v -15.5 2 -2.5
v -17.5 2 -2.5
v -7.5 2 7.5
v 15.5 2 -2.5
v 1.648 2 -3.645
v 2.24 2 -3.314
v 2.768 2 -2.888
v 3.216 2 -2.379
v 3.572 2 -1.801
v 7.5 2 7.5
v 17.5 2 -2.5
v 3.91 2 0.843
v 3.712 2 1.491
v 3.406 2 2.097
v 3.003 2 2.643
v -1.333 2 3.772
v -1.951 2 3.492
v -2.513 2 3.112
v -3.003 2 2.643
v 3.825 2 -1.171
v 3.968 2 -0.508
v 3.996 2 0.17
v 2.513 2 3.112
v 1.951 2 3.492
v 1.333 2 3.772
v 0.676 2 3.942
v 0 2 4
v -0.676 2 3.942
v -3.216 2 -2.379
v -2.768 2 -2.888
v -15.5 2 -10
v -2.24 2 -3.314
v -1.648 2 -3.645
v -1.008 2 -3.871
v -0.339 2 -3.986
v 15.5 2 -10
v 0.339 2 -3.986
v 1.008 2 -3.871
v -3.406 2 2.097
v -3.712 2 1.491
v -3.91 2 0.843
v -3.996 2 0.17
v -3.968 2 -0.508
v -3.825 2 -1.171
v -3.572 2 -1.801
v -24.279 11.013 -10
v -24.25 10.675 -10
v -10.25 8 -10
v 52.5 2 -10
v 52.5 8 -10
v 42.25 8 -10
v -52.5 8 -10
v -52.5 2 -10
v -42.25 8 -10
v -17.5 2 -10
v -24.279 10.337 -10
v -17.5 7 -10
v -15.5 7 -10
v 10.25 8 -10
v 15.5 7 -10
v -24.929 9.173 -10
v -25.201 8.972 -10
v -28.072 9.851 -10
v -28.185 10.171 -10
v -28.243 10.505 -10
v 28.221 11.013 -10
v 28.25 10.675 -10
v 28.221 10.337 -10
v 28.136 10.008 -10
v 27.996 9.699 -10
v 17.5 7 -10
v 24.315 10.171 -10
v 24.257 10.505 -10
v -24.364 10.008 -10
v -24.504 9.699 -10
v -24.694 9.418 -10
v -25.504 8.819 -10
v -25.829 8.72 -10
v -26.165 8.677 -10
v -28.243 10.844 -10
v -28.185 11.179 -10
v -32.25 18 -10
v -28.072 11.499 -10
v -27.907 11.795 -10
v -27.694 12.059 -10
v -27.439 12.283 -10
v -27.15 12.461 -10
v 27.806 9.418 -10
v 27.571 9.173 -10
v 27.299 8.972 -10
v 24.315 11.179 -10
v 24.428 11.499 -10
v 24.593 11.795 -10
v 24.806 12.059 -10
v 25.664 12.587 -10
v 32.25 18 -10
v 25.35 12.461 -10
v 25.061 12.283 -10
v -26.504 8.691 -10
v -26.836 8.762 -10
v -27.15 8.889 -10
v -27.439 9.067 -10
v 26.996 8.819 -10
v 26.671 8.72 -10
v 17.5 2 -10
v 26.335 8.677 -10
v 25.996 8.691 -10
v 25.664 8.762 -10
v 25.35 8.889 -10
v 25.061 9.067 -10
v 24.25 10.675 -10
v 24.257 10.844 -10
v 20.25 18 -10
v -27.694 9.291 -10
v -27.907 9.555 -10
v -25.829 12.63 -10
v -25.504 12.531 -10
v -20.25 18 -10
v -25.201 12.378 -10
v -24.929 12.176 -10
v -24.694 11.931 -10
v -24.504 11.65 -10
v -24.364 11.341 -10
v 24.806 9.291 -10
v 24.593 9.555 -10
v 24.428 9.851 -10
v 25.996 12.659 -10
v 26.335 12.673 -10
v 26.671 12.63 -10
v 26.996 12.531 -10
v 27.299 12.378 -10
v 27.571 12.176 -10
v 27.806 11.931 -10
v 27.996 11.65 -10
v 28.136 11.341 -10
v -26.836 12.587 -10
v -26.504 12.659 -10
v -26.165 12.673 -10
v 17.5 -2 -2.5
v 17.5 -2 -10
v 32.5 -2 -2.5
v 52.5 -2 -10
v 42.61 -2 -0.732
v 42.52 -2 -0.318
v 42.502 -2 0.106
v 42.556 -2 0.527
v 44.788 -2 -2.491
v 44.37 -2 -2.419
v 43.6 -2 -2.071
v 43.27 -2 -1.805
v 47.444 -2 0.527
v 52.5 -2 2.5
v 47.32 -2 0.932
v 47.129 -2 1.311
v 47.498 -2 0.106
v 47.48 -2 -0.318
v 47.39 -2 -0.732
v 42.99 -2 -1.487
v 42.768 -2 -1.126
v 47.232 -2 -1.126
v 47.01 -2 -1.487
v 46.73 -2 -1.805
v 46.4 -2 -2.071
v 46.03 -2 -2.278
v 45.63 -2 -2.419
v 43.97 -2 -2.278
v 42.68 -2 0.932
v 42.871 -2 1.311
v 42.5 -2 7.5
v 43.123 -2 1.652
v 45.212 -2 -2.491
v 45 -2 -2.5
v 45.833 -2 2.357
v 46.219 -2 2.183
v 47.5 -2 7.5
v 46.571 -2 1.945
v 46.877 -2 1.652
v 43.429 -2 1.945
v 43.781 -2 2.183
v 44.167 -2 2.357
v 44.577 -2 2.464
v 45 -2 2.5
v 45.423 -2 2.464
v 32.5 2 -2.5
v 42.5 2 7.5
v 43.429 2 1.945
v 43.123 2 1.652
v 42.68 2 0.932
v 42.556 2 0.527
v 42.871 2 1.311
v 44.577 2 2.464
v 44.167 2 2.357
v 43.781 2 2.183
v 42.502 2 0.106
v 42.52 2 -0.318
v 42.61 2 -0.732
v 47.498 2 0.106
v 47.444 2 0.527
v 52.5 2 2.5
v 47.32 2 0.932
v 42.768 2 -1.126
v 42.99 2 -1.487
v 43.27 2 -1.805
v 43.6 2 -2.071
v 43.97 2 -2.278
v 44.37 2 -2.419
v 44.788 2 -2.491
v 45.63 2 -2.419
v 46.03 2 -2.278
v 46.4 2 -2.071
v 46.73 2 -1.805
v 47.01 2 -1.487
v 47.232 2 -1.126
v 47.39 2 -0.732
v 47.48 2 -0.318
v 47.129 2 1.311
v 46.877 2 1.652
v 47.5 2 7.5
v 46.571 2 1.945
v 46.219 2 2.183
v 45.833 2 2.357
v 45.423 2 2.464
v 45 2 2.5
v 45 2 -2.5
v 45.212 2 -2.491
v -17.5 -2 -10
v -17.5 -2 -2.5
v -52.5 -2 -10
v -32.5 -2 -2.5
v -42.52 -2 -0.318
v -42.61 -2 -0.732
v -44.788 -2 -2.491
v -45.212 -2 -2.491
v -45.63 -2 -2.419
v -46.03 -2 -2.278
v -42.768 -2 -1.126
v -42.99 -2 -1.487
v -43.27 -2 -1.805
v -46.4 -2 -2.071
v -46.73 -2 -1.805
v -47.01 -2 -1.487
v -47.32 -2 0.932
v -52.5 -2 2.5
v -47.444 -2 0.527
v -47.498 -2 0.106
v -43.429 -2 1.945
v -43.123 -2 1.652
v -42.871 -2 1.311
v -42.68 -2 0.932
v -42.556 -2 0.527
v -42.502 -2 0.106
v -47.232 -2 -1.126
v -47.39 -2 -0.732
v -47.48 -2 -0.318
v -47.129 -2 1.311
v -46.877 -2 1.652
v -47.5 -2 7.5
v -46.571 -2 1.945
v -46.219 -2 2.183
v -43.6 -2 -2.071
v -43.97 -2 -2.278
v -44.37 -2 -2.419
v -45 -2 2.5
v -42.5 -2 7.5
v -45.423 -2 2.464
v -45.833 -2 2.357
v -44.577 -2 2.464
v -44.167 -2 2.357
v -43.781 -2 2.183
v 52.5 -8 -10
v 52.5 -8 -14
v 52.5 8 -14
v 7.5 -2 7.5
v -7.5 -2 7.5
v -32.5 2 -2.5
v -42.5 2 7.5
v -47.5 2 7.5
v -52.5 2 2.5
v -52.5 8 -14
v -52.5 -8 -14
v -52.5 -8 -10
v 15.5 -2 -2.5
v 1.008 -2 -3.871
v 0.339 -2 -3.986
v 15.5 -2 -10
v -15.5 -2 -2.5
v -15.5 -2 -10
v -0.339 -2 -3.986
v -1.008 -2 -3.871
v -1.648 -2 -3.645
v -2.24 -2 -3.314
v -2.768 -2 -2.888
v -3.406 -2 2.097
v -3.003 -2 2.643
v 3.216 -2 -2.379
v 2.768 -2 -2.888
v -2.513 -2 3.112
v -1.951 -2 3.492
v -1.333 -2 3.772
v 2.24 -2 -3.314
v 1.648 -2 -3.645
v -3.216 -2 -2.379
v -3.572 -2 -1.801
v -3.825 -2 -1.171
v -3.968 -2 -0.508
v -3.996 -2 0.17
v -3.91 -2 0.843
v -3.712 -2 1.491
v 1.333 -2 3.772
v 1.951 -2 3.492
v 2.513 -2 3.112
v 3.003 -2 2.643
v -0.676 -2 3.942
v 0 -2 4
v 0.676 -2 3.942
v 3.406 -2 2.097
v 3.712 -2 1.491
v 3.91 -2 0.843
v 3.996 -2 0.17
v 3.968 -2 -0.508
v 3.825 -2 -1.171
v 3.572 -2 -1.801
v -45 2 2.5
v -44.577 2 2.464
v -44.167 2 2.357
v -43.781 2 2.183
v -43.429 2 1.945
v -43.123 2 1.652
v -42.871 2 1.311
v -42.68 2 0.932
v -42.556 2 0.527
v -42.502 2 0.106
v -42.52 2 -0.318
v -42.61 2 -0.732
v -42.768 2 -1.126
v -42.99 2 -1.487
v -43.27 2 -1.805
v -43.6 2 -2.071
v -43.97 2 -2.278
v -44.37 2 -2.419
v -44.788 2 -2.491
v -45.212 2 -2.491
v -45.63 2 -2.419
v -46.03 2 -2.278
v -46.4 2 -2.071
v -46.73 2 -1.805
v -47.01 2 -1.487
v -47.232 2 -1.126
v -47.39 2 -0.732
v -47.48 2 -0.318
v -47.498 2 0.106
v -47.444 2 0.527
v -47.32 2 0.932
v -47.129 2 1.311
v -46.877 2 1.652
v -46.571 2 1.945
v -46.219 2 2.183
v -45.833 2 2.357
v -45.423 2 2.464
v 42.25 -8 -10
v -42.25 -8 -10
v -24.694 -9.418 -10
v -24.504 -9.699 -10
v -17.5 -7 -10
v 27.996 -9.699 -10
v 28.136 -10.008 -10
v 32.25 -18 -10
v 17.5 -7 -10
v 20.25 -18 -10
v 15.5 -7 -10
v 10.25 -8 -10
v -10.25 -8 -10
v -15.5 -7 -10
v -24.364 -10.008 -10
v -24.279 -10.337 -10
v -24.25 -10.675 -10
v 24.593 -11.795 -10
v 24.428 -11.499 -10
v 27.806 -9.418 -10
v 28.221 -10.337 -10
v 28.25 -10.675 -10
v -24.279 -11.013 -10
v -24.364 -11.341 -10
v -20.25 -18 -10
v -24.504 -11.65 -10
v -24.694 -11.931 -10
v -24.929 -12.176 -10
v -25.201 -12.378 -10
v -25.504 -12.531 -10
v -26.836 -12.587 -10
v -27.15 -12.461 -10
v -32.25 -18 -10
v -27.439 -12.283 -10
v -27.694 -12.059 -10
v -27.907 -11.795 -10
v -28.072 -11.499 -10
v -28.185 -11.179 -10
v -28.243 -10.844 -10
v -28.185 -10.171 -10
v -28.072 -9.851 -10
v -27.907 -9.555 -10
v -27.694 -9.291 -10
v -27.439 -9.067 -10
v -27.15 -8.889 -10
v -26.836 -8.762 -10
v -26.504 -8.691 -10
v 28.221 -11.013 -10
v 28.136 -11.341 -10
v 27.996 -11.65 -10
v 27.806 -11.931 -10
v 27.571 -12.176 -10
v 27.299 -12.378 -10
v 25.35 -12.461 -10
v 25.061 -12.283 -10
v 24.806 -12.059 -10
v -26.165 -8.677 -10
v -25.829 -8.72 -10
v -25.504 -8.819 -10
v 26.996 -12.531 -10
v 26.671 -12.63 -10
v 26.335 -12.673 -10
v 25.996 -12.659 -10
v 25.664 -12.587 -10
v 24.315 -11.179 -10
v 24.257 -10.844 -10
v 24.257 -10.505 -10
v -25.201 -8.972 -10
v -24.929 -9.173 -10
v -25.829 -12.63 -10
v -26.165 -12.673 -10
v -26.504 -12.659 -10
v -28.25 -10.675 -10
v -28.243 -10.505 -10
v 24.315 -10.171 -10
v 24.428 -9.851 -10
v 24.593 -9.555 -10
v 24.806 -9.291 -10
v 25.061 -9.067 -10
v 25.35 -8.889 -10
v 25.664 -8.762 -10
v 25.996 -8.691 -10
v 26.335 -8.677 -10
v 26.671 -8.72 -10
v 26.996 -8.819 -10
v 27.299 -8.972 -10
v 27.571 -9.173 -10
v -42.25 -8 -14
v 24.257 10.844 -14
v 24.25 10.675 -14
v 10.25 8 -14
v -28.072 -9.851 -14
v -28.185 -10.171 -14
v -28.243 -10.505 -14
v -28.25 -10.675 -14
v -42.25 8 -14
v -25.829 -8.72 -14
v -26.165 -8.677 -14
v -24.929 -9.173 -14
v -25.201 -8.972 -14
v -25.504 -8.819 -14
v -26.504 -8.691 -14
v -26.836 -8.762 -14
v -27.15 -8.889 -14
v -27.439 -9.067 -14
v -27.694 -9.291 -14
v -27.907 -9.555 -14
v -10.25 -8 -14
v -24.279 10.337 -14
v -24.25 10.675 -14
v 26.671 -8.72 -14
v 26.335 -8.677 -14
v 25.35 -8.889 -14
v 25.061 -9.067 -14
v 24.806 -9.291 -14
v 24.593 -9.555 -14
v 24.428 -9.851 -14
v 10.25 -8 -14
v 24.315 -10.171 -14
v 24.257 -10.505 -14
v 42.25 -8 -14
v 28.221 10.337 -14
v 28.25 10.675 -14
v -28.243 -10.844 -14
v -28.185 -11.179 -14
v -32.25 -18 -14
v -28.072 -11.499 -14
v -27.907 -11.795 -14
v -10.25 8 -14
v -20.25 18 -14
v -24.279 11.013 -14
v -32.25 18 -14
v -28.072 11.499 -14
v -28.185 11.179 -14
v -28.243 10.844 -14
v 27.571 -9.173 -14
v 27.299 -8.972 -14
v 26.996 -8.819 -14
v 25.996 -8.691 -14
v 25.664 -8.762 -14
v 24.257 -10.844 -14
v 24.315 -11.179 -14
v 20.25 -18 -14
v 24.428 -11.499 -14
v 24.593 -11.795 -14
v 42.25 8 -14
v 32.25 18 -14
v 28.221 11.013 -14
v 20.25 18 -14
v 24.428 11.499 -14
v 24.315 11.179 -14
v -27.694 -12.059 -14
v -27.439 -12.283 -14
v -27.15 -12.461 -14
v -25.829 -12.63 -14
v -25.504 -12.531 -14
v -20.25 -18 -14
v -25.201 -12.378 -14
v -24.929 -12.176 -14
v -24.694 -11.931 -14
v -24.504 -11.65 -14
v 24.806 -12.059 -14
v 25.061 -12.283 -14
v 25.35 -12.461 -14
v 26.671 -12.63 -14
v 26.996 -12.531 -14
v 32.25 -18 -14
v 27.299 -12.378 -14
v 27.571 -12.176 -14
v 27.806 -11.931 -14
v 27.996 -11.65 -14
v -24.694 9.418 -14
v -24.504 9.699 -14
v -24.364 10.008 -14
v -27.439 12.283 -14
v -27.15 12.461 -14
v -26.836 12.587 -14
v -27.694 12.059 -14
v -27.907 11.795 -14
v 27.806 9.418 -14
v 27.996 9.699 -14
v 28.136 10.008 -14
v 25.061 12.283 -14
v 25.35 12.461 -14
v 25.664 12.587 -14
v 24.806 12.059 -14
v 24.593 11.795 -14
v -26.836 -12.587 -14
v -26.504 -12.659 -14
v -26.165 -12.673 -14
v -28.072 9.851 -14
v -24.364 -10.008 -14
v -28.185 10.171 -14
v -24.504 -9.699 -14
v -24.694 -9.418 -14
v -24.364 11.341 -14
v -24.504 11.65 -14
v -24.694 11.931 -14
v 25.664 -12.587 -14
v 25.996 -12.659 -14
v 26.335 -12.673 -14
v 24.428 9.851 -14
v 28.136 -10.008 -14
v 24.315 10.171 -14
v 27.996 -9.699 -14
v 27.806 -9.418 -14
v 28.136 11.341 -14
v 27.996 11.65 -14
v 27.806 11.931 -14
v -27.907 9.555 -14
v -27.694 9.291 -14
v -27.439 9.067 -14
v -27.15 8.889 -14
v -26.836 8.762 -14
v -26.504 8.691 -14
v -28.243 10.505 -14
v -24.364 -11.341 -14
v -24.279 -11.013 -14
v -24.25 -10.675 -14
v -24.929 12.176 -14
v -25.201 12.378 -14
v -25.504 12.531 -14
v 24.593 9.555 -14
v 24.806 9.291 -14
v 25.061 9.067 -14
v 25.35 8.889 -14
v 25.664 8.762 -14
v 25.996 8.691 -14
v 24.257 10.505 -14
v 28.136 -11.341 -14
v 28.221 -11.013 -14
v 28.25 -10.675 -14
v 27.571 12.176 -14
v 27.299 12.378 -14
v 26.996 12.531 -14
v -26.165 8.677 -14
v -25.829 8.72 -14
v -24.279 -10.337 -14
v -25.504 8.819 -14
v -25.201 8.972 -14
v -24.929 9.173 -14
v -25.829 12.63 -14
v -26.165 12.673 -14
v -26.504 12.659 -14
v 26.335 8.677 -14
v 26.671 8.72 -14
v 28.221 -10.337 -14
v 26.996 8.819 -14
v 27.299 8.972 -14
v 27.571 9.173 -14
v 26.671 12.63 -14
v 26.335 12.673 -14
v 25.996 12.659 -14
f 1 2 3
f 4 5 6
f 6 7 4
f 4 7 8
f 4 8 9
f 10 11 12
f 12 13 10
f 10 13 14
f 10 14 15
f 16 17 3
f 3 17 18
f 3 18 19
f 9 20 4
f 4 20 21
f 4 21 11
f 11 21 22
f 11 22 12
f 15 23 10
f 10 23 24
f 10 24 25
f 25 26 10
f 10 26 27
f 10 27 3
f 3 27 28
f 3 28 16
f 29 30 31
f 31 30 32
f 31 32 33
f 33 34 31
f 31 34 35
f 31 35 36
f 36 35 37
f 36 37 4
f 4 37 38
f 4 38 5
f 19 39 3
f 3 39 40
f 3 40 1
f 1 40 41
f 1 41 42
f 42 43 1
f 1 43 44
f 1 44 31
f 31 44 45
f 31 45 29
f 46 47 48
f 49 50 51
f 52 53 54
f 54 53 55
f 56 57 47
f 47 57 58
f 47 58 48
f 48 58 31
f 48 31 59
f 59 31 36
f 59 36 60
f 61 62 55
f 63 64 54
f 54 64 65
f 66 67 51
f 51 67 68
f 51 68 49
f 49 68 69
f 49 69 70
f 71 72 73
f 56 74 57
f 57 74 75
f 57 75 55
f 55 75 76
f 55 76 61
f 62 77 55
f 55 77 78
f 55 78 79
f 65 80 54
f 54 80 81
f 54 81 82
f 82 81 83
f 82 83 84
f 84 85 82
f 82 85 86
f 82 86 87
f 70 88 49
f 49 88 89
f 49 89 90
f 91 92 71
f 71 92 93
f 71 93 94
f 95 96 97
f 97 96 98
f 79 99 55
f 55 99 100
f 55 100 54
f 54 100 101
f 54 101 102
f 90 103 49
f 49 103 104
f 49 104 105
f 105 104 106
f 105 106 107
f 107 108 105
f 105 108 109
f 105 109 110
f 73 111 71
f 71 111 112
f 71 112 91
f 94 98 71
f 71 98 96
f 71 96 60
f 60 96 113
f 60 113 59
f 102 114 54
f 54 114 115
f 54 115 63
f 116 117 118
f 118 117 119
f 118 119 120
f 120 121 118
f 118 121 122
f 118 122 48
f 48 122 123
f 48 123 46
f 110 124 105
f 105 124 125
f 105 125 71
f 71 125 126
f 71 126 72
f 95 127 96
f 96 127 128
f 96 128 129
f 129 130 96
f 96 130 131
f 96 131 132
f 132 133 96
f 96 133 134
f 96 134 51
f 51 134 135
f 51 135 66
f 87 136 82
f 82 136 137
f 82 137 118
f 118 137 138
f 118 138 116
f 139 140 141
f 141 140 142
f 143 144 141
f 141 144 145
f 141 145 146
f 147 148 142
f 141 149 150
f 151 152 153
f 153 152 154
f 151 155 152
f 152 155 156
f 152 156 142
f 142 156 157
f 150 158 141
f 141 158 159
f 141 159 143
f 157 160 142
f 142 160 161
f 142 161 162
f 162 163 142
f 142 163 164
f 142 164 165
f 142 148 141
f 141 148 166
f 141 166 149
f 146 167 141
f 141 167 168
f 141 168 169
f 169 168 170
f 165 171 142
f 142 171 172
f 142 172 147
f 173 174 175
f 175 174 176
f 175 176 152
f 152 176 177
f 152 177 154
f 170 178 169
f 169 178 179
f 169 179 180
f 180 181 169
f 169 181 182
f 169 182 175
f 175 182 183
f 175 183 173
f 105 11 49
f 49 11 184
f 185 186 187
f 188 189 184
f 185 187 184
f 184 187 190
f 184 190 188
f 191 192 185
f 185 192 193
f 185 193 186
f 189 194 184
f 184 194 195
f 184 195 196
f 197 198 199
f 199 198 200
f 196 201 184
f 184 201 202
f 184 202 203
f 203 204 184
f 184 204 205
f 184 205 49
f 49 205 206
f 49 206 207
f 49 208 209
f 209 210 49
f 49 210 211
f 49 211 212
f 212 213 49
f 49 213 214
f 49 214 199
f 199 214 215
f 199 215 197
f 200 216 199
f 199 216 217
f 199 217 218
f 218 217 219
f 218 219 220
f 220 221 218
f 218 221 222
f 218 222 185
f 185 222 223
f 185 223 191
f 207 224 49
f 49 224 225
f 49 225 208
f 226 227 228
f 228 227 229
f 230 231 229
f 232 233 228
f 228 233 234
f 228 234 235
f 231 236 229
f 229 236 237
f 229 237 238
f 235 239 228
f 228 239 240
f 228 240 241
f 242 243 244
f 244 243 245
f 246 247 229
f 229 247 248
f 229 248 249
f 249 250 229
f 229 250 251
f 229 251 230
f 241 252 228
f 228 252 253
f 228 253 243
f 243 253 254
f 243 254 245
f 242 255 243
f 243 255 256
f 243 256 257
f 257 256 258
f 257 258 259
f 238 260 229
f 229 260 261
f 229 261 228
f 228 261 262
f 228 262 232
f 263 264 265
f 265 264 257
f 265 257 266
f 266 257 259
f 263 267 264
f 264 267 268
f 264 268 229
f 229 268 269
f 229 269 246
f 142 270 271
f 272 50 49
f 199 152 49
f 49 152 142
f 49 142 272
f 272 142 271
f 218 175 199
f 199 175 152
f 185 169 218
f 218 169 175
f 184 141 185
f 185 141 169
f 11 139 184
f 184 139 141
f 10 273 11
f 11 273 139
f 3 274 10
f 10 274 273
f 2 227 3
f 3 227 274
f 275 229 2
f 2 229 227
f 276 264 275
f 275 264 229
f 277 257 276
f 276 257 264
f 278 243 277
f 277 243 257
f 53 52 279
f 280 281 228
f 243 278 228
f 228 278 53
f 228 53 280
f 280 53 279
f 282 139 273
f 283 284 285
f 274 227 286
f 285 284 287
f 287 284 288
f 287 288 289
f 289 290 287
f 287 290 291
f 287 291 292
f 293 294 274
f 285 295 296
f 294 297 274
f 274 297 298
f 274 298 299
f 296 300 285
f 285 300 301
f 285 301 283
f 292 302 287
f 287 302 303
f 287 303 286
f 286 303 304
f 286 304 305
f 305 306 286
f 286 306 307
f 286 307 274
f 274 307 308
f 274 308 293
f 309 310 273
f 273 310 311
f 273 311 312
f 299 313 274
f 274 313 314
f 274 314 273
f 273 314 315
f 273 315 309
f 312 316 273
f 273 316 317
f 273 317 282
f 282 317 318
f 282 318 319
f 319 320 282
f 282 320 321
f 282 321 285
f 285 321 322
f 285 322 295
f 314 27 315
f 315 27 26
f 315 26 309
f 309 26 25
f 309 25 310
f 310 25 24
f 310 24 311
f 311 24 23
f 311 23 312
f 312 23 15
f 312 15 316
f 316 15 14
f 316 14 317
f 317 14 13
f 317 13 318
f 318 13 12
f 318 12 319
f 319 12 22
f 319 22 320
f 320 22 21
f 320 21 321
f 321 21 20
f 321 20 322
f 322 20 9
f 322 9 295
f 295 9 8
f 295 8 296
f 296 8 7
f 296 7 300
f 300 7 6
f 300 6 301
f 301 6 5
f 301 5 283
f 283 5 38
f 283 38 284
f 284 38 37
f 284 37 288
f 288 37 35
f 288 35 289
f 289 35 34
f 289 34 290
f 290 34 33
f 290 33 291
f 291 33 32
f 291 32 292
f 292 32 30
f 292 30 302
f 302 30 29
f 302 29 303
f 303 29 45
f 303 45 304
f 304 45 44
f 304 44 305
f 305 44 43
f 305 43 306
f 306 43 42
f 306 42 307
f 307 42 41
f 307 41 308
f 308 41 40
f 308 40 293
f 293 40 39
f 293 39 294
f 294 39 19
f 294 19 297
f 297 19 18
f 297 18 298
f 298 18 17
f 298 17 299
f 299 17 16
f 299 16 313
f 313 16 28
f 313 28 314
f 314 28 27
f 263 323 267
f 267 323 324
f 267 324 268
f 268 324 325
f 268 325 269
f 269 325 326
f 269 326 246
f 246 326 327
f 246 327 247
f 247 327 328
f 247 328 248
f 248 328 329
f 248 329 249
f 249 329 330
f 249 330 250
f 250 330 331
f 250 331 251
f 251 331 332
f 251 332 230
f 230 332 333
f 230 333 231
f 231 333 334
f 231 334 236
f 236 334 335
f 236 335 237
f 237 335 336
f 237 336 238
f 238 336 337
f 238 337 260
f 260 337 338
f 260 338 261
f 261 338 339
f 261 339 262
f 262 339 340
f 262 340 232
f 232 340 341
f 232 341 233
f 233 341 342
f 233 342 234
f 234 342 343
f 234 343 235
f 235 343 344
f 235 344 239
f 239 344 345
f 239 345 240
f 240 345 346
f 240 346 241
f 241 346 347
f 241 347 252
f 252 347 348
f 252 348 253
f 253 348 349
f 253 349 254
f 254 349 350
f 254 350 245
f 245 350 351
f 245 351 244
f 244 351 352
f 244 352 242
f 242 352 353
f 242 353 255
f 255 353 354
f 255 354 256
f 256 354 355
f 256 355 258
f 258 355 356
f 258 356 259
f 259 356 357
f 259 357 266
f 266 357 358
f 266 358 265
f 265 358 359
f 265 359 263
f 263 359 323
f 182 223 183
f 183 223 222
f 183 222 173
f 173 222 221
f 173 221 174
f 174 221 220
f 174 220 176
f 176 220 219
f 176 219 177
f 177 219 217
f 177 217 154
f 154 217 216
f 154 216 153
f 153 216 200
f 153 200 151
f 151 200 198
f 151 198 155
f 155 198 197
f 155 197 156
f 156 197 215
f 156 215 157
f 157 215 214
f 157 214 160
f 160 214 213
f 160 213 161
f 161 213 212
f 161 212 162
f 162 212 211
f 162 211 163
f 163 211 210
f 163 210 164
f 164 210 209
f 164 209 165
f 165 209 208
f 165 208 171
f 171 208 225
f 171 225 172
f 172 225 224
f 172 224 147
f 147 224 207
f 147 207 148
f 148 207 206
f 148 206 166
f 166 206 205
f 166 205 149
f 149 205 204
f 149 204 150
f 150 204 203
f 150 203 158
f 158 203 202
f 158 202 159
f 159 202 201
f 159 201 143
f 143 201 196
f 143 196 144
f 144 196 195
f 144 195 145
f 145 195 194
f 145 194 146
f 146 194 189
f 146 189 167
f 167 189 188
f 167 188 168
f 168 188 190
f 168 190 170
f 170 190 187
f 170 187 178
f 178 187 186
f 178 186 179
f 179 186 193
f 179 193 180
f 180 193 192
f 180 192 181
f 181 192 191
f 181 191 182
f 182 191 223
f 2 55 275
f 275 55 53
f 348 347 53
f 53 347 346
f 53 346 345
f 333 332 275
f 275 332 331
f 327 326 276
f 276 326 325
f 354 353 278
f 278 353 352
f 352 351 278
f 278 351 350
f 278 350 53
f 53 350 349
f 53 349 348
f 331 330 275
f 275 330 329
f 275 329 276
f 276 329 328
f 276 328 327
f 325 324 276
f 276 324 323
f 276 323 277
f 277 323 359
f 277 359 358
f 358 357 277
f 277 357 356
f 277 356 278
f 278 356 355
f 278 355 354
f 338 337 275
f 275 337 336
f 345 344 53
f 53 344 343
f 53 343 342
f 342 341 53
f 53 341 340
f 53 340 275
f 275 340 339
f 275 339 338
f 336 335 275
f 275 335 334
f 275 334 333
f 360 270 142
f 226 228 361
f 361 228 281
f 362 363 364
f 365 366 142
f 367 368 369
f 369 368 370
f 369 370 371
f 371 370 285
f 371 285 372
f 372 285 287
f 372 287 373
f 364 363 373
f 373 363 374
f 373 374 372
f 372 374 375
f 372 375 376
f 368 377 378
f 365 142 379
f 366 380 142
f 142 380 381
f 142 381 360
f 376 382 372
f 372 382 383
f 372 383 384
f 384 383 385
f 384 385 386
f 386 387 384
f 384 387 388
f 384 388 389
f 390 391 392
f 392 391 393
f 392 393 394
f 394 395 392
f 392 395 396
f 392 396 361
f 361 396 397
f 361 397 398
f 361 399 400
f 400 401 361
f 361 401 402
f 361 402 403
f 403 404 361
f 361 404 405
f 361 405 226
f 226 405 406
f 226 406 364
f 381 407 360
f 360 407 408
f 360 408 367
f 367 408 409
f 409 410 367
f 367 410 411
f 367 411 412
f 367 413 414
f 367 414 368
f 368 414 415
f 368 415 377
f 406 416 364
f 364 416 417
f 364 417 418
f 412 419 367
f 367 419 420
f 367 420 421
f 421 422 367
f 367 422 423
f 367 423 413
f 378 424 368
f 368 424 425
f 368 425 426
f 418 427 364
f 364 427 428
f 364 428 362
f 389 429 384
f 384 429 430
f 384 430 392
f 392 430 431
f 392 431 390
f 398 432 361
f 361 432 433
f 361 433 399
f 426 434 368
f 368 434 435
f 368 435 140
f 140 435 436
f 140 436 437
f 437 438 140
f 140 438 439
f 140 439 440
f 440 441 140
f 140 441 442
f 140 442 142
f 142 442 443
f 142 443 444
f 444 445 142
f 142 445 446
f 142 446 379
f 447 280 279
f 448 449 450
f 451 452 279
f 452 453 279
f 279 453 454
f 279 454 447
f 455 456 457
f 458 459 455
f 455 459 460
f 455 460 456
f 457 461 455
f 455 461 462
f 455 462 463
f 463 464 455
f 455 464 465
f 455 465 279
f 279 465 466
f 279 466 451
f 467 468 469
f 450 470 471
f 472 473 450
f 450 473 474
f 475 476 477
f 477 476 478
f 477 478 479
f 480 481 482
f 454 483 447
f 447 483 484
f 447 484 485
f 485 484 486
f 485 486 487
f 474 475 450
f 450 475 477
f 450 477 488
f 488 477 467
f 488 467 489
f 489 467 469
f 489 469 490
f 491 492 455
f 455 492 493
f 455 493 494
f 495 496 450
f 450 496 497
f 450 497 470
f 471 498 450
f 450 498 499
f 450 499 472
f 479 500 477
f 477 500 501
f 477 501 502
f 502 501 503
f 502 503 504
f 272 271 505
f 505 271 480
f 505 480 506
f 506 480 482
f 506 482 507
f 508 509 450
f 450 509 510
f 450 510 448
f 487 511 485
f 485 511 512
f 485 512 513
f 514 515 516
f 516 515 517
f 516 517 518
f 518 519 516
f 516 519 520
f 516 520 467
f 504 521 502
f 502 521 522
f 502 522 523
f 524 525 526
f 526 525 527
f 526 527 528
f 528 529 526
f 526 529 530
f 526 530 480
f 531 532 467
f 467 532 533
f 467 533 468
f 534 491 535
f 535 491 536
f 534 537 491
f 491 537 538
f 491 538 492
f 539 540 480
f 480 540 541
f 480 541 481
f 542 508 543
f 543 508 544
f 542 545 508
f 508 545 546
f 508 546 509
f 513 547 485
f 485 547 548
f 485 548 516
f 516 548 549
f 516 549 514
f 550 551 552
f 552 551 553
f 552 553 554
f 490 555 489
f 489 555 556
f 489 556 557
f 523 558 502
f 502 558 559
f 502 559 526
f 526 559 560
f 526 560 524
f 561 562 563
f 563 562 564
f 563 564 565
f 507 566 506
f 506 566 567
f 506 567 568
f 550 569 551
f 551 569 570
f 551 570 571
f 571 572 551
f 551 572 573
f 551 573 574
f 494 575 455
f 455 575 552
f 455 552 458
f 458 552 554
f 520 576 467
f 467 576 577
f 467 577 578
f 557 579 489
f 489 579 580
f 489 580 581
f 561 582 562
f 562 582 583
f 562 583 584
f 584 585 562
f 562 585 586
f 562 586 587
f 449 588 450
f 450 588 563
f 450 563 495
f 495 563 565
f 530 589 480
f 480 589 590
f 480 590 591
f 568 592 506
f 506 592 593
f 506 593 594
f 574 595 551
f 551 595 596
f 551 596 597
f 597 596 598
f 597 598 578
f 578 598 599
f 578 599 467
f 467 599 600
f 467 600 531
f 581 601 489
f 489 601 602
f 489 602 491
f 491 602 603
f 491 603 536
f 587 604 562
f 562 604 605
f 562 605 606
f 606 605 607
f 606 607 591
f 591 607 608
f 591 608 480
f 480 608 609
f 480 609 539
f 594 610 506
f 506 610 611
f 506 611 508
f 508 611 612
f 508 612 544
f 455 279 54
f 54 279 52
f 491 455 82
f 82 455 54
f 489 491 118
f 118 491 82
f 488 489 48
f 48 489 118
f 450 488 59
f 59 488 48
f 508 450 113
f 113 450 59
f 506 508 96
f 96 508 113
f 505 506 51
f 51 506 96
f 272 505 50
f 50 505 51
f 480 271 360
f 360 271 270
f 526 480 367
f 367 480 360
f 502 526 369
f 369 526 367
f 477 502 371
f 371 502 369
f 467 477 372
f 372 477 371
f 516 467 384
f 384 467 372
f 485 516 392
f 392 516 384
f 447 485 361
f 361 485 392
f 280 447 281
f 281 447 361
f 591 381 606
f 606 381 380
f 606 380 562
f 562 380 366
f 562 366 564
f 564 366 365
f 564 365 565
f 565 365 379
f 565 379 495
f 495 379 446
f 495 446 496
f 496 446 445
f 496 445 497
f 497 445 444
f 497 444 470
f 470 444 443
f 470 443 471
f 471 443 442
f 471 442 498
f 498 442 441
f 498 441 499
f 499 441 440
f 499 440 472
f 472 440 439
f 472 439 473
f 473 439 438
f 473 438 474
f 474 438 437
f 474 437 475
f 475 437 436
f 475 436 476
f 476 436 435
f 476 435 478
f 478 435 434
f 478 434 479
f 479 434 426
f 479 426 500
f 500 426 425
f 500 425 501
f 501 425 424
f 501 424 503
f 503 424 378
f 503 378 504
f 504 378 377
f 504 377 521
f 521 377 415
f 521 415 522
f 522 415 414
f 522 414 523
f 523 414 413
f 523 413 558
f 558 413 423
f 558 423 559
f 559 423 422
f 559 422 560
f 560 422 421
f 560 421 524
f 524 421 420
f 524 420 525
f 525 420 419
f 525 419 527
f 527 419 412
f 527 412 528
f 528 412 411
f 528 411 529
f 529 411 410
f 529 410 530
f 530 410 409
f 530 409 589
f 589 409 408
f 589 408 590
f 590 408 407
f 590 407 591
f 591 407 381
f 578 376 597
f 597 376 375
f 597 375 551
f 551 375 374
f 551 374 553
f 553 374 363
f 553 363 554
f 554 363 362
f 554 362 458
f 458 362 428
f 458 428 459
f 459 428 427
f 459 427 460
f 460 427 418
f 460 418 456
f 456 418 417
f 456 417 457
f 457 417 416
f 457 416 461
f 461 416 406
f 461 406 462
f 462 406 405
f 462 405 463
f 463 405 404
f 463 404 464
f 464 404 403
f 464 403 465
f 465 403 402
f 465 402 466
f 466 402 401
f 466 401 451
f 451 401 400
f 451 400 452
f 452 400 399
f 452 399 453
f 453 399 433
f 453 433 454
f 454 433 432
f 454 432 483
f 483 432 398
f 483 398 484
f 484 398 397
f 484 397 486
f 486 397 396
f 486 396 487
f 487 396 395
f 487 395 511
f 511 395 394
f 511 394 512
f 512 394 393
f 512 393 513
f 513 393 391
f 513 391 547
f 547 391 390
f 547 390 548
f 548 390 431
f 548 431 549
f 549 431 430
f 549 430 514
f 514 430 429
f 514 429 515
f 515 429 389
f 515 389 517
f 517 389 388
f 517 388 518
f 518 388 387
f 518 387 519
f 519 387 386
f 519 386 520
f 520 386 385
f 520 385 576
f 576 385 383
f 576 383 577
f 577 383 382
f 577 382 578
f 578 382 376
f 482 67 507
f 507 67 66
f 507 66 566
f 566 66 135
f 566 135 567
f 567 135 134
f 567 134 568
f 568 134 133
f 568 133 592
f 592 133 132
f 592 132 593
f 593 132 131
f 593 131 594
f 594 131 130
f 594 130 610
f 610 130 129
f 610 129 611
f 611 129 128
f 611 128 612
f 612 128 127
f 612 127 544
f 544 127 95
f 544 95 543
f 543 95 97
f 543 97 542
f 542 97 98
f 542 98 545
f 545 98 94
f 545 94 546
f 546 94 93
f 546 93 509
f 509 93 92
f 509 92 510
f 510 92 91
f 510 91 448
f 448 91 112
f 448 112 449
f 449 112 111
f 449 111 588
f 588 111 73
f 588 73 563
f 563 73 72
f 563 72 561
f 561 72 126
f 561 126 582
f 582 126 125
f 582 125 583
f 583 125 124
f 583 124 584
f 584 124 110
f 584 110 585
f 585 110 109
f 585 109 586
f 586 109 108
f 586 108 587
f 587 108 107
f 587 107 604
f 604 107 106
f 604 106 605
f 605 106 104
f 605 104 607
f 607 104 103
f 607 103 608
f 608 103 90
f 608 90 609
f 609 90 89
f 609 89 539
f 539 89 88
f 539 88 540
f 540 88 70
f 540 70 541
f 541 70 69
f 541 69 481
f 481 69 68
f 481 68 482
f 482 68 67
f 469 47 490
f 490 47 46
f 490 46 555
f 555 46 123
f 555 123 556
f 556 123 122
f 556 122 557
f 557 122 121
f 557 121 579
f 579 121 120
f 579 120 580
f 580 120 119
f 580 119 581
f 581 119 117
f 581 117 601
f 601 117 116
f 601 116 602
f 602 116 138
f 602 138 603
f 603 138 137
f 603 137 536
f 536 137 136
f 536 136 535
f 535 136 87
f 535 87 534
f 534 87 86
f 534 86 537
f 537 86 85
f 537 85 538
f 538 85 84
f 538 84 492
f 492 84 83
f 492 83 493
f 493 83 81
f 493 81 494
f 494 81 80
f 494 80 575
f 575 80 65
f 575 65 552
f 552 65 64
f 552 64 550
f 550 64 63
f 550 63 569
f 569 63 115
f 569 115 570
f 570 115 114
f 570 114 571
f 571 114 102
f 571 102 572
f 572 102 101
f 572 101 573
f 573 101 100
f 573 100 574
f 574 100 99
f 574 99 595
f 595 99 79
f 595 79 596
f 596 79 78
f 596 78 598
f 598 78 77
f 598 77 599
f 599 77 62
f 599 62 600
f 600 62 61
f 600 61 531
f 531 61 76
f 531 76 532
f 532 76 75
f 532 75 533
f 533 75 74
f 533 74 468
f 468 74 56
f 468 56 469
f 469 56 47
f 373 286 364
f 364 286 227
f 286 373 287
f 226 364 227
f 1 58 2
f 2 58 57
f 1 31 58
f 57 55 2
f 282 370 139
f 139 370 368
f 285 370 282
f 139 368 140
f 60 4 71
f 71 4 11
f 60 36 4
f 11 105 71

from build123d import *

# Parameters (mm, degrees)
BOSS_EXTRUDE1_DEPTH      = 2
BOSS_EXTRUDE1_DEPTH_BACK = 2
SKETCH2_R                = 4
SKETCH2_R_2              = 2.5
SKETCH4_R                = 2
BOSS_EXTRUDE2_DEPTH      = 4
BOSS_EXTRUDE3_DEPTH      = 2


with BuildPart() as part:
    # Sketch2 → Boss-Extrude1 (new, two sides: drawn at the far end of the back side and taken through both)
    with BuildSketch(Plane(origin=(0, 0, 0), x_dir=(1, 0, 0), z_dir=(0, 1, 0)).offset(-BOSS_EXTRUDE1_DEPTH_BACK)):
        Polygon((-52.5, 10), (52.5, 10), (52.5, 0), (52.5, -2.5), (47.5, -7.5), (42.5, -7.5), (32.5, 2.5), (17.5, 2.5), (7.5, -7.5), (-7.5, -7.5), (-17.5, 2.5), (-32.5, 2.5), (-42.5, -7.5), (-47.5, -7.5), (-52.5, -2.5), (-52.5, 0), align=None)
        Circle(SKETCH2_R, mode=Mode.SUBTRACT)
        with Locations((-45, 0)):
            Circle(SKETCH2_R_2, mode=Mode.SUBTRACT)
        with Locations((45, 0)):
            Circle(SKETCH2_R_2, mode=Mode.SUBTRACT)
    extrude(amount=BOSS_EXTRUDE1_DEPTH + BOSS_EXTRUDE1_DEPTH_BACK)

    # Sketch4 → Boss-Extrude2 (add)
    with BuildSketch(Plane(origin=(0, 0, -10), x_dir=(-1, 0, 0), z_dir=(0, 0, -1))):
        Polygon((52.5, -8), (42.25, -8), (32.25, -18), (20.25, -18), (10.25, -8), (-10.25, -8), (-20.25, -18), (-32.25, -18), (-42.25, -8), (-52.5, -8), (-52.5, 8), (-42.25, 8), (-32.25, 18), (-20.25, 18), (-10.25, 8), (10.25, 8), (20.25, 18), (32.25, 18), (42.25, 8), (52.5, 8), align=None)
        with Locations((26.25, -10.674724776)):
            Circle(SKETCH4_R, mode=Mode.SUBTRACT)
        with Locations((-26.25, -10.674724776)):
            Circle(SKETCH4_R, mode=Mode.SUBTRACT)
        with Locations((-26.25, 10.674724776)):
            Circle(SKETCH4_R, mode=Mode.SUBTRACT)
        with Locations((26.25, 10.674724776)):
            Circle(SKETCH4_R, mode=Mode.SUBTRACT)
    extrude(amount=BOSS_EXTRUDE2_DEPTH)

    # Sketch5 → Boss-Extrude3 (add)
    with BuildSketch(Plane.ZY.offset(17.5)):
        Polygon((-10, 7), (-10, 2), (-2.5, 2), align=None)
        Polygon((-2.5, -2), (-10, -7), (-10, -2), align=None)
    boss_extrude3 = extrude(amount=-BOSS_EXTRUDE3_DEPTH)

    # Mirror1: Boss-Extrude3 across plane
    add(boss_extrude3.mirror(Plane(origin=(0, 0, 0), x_dir=(0, 0, 1), z_dir=(1, 0, 0))))


solid = part.part
